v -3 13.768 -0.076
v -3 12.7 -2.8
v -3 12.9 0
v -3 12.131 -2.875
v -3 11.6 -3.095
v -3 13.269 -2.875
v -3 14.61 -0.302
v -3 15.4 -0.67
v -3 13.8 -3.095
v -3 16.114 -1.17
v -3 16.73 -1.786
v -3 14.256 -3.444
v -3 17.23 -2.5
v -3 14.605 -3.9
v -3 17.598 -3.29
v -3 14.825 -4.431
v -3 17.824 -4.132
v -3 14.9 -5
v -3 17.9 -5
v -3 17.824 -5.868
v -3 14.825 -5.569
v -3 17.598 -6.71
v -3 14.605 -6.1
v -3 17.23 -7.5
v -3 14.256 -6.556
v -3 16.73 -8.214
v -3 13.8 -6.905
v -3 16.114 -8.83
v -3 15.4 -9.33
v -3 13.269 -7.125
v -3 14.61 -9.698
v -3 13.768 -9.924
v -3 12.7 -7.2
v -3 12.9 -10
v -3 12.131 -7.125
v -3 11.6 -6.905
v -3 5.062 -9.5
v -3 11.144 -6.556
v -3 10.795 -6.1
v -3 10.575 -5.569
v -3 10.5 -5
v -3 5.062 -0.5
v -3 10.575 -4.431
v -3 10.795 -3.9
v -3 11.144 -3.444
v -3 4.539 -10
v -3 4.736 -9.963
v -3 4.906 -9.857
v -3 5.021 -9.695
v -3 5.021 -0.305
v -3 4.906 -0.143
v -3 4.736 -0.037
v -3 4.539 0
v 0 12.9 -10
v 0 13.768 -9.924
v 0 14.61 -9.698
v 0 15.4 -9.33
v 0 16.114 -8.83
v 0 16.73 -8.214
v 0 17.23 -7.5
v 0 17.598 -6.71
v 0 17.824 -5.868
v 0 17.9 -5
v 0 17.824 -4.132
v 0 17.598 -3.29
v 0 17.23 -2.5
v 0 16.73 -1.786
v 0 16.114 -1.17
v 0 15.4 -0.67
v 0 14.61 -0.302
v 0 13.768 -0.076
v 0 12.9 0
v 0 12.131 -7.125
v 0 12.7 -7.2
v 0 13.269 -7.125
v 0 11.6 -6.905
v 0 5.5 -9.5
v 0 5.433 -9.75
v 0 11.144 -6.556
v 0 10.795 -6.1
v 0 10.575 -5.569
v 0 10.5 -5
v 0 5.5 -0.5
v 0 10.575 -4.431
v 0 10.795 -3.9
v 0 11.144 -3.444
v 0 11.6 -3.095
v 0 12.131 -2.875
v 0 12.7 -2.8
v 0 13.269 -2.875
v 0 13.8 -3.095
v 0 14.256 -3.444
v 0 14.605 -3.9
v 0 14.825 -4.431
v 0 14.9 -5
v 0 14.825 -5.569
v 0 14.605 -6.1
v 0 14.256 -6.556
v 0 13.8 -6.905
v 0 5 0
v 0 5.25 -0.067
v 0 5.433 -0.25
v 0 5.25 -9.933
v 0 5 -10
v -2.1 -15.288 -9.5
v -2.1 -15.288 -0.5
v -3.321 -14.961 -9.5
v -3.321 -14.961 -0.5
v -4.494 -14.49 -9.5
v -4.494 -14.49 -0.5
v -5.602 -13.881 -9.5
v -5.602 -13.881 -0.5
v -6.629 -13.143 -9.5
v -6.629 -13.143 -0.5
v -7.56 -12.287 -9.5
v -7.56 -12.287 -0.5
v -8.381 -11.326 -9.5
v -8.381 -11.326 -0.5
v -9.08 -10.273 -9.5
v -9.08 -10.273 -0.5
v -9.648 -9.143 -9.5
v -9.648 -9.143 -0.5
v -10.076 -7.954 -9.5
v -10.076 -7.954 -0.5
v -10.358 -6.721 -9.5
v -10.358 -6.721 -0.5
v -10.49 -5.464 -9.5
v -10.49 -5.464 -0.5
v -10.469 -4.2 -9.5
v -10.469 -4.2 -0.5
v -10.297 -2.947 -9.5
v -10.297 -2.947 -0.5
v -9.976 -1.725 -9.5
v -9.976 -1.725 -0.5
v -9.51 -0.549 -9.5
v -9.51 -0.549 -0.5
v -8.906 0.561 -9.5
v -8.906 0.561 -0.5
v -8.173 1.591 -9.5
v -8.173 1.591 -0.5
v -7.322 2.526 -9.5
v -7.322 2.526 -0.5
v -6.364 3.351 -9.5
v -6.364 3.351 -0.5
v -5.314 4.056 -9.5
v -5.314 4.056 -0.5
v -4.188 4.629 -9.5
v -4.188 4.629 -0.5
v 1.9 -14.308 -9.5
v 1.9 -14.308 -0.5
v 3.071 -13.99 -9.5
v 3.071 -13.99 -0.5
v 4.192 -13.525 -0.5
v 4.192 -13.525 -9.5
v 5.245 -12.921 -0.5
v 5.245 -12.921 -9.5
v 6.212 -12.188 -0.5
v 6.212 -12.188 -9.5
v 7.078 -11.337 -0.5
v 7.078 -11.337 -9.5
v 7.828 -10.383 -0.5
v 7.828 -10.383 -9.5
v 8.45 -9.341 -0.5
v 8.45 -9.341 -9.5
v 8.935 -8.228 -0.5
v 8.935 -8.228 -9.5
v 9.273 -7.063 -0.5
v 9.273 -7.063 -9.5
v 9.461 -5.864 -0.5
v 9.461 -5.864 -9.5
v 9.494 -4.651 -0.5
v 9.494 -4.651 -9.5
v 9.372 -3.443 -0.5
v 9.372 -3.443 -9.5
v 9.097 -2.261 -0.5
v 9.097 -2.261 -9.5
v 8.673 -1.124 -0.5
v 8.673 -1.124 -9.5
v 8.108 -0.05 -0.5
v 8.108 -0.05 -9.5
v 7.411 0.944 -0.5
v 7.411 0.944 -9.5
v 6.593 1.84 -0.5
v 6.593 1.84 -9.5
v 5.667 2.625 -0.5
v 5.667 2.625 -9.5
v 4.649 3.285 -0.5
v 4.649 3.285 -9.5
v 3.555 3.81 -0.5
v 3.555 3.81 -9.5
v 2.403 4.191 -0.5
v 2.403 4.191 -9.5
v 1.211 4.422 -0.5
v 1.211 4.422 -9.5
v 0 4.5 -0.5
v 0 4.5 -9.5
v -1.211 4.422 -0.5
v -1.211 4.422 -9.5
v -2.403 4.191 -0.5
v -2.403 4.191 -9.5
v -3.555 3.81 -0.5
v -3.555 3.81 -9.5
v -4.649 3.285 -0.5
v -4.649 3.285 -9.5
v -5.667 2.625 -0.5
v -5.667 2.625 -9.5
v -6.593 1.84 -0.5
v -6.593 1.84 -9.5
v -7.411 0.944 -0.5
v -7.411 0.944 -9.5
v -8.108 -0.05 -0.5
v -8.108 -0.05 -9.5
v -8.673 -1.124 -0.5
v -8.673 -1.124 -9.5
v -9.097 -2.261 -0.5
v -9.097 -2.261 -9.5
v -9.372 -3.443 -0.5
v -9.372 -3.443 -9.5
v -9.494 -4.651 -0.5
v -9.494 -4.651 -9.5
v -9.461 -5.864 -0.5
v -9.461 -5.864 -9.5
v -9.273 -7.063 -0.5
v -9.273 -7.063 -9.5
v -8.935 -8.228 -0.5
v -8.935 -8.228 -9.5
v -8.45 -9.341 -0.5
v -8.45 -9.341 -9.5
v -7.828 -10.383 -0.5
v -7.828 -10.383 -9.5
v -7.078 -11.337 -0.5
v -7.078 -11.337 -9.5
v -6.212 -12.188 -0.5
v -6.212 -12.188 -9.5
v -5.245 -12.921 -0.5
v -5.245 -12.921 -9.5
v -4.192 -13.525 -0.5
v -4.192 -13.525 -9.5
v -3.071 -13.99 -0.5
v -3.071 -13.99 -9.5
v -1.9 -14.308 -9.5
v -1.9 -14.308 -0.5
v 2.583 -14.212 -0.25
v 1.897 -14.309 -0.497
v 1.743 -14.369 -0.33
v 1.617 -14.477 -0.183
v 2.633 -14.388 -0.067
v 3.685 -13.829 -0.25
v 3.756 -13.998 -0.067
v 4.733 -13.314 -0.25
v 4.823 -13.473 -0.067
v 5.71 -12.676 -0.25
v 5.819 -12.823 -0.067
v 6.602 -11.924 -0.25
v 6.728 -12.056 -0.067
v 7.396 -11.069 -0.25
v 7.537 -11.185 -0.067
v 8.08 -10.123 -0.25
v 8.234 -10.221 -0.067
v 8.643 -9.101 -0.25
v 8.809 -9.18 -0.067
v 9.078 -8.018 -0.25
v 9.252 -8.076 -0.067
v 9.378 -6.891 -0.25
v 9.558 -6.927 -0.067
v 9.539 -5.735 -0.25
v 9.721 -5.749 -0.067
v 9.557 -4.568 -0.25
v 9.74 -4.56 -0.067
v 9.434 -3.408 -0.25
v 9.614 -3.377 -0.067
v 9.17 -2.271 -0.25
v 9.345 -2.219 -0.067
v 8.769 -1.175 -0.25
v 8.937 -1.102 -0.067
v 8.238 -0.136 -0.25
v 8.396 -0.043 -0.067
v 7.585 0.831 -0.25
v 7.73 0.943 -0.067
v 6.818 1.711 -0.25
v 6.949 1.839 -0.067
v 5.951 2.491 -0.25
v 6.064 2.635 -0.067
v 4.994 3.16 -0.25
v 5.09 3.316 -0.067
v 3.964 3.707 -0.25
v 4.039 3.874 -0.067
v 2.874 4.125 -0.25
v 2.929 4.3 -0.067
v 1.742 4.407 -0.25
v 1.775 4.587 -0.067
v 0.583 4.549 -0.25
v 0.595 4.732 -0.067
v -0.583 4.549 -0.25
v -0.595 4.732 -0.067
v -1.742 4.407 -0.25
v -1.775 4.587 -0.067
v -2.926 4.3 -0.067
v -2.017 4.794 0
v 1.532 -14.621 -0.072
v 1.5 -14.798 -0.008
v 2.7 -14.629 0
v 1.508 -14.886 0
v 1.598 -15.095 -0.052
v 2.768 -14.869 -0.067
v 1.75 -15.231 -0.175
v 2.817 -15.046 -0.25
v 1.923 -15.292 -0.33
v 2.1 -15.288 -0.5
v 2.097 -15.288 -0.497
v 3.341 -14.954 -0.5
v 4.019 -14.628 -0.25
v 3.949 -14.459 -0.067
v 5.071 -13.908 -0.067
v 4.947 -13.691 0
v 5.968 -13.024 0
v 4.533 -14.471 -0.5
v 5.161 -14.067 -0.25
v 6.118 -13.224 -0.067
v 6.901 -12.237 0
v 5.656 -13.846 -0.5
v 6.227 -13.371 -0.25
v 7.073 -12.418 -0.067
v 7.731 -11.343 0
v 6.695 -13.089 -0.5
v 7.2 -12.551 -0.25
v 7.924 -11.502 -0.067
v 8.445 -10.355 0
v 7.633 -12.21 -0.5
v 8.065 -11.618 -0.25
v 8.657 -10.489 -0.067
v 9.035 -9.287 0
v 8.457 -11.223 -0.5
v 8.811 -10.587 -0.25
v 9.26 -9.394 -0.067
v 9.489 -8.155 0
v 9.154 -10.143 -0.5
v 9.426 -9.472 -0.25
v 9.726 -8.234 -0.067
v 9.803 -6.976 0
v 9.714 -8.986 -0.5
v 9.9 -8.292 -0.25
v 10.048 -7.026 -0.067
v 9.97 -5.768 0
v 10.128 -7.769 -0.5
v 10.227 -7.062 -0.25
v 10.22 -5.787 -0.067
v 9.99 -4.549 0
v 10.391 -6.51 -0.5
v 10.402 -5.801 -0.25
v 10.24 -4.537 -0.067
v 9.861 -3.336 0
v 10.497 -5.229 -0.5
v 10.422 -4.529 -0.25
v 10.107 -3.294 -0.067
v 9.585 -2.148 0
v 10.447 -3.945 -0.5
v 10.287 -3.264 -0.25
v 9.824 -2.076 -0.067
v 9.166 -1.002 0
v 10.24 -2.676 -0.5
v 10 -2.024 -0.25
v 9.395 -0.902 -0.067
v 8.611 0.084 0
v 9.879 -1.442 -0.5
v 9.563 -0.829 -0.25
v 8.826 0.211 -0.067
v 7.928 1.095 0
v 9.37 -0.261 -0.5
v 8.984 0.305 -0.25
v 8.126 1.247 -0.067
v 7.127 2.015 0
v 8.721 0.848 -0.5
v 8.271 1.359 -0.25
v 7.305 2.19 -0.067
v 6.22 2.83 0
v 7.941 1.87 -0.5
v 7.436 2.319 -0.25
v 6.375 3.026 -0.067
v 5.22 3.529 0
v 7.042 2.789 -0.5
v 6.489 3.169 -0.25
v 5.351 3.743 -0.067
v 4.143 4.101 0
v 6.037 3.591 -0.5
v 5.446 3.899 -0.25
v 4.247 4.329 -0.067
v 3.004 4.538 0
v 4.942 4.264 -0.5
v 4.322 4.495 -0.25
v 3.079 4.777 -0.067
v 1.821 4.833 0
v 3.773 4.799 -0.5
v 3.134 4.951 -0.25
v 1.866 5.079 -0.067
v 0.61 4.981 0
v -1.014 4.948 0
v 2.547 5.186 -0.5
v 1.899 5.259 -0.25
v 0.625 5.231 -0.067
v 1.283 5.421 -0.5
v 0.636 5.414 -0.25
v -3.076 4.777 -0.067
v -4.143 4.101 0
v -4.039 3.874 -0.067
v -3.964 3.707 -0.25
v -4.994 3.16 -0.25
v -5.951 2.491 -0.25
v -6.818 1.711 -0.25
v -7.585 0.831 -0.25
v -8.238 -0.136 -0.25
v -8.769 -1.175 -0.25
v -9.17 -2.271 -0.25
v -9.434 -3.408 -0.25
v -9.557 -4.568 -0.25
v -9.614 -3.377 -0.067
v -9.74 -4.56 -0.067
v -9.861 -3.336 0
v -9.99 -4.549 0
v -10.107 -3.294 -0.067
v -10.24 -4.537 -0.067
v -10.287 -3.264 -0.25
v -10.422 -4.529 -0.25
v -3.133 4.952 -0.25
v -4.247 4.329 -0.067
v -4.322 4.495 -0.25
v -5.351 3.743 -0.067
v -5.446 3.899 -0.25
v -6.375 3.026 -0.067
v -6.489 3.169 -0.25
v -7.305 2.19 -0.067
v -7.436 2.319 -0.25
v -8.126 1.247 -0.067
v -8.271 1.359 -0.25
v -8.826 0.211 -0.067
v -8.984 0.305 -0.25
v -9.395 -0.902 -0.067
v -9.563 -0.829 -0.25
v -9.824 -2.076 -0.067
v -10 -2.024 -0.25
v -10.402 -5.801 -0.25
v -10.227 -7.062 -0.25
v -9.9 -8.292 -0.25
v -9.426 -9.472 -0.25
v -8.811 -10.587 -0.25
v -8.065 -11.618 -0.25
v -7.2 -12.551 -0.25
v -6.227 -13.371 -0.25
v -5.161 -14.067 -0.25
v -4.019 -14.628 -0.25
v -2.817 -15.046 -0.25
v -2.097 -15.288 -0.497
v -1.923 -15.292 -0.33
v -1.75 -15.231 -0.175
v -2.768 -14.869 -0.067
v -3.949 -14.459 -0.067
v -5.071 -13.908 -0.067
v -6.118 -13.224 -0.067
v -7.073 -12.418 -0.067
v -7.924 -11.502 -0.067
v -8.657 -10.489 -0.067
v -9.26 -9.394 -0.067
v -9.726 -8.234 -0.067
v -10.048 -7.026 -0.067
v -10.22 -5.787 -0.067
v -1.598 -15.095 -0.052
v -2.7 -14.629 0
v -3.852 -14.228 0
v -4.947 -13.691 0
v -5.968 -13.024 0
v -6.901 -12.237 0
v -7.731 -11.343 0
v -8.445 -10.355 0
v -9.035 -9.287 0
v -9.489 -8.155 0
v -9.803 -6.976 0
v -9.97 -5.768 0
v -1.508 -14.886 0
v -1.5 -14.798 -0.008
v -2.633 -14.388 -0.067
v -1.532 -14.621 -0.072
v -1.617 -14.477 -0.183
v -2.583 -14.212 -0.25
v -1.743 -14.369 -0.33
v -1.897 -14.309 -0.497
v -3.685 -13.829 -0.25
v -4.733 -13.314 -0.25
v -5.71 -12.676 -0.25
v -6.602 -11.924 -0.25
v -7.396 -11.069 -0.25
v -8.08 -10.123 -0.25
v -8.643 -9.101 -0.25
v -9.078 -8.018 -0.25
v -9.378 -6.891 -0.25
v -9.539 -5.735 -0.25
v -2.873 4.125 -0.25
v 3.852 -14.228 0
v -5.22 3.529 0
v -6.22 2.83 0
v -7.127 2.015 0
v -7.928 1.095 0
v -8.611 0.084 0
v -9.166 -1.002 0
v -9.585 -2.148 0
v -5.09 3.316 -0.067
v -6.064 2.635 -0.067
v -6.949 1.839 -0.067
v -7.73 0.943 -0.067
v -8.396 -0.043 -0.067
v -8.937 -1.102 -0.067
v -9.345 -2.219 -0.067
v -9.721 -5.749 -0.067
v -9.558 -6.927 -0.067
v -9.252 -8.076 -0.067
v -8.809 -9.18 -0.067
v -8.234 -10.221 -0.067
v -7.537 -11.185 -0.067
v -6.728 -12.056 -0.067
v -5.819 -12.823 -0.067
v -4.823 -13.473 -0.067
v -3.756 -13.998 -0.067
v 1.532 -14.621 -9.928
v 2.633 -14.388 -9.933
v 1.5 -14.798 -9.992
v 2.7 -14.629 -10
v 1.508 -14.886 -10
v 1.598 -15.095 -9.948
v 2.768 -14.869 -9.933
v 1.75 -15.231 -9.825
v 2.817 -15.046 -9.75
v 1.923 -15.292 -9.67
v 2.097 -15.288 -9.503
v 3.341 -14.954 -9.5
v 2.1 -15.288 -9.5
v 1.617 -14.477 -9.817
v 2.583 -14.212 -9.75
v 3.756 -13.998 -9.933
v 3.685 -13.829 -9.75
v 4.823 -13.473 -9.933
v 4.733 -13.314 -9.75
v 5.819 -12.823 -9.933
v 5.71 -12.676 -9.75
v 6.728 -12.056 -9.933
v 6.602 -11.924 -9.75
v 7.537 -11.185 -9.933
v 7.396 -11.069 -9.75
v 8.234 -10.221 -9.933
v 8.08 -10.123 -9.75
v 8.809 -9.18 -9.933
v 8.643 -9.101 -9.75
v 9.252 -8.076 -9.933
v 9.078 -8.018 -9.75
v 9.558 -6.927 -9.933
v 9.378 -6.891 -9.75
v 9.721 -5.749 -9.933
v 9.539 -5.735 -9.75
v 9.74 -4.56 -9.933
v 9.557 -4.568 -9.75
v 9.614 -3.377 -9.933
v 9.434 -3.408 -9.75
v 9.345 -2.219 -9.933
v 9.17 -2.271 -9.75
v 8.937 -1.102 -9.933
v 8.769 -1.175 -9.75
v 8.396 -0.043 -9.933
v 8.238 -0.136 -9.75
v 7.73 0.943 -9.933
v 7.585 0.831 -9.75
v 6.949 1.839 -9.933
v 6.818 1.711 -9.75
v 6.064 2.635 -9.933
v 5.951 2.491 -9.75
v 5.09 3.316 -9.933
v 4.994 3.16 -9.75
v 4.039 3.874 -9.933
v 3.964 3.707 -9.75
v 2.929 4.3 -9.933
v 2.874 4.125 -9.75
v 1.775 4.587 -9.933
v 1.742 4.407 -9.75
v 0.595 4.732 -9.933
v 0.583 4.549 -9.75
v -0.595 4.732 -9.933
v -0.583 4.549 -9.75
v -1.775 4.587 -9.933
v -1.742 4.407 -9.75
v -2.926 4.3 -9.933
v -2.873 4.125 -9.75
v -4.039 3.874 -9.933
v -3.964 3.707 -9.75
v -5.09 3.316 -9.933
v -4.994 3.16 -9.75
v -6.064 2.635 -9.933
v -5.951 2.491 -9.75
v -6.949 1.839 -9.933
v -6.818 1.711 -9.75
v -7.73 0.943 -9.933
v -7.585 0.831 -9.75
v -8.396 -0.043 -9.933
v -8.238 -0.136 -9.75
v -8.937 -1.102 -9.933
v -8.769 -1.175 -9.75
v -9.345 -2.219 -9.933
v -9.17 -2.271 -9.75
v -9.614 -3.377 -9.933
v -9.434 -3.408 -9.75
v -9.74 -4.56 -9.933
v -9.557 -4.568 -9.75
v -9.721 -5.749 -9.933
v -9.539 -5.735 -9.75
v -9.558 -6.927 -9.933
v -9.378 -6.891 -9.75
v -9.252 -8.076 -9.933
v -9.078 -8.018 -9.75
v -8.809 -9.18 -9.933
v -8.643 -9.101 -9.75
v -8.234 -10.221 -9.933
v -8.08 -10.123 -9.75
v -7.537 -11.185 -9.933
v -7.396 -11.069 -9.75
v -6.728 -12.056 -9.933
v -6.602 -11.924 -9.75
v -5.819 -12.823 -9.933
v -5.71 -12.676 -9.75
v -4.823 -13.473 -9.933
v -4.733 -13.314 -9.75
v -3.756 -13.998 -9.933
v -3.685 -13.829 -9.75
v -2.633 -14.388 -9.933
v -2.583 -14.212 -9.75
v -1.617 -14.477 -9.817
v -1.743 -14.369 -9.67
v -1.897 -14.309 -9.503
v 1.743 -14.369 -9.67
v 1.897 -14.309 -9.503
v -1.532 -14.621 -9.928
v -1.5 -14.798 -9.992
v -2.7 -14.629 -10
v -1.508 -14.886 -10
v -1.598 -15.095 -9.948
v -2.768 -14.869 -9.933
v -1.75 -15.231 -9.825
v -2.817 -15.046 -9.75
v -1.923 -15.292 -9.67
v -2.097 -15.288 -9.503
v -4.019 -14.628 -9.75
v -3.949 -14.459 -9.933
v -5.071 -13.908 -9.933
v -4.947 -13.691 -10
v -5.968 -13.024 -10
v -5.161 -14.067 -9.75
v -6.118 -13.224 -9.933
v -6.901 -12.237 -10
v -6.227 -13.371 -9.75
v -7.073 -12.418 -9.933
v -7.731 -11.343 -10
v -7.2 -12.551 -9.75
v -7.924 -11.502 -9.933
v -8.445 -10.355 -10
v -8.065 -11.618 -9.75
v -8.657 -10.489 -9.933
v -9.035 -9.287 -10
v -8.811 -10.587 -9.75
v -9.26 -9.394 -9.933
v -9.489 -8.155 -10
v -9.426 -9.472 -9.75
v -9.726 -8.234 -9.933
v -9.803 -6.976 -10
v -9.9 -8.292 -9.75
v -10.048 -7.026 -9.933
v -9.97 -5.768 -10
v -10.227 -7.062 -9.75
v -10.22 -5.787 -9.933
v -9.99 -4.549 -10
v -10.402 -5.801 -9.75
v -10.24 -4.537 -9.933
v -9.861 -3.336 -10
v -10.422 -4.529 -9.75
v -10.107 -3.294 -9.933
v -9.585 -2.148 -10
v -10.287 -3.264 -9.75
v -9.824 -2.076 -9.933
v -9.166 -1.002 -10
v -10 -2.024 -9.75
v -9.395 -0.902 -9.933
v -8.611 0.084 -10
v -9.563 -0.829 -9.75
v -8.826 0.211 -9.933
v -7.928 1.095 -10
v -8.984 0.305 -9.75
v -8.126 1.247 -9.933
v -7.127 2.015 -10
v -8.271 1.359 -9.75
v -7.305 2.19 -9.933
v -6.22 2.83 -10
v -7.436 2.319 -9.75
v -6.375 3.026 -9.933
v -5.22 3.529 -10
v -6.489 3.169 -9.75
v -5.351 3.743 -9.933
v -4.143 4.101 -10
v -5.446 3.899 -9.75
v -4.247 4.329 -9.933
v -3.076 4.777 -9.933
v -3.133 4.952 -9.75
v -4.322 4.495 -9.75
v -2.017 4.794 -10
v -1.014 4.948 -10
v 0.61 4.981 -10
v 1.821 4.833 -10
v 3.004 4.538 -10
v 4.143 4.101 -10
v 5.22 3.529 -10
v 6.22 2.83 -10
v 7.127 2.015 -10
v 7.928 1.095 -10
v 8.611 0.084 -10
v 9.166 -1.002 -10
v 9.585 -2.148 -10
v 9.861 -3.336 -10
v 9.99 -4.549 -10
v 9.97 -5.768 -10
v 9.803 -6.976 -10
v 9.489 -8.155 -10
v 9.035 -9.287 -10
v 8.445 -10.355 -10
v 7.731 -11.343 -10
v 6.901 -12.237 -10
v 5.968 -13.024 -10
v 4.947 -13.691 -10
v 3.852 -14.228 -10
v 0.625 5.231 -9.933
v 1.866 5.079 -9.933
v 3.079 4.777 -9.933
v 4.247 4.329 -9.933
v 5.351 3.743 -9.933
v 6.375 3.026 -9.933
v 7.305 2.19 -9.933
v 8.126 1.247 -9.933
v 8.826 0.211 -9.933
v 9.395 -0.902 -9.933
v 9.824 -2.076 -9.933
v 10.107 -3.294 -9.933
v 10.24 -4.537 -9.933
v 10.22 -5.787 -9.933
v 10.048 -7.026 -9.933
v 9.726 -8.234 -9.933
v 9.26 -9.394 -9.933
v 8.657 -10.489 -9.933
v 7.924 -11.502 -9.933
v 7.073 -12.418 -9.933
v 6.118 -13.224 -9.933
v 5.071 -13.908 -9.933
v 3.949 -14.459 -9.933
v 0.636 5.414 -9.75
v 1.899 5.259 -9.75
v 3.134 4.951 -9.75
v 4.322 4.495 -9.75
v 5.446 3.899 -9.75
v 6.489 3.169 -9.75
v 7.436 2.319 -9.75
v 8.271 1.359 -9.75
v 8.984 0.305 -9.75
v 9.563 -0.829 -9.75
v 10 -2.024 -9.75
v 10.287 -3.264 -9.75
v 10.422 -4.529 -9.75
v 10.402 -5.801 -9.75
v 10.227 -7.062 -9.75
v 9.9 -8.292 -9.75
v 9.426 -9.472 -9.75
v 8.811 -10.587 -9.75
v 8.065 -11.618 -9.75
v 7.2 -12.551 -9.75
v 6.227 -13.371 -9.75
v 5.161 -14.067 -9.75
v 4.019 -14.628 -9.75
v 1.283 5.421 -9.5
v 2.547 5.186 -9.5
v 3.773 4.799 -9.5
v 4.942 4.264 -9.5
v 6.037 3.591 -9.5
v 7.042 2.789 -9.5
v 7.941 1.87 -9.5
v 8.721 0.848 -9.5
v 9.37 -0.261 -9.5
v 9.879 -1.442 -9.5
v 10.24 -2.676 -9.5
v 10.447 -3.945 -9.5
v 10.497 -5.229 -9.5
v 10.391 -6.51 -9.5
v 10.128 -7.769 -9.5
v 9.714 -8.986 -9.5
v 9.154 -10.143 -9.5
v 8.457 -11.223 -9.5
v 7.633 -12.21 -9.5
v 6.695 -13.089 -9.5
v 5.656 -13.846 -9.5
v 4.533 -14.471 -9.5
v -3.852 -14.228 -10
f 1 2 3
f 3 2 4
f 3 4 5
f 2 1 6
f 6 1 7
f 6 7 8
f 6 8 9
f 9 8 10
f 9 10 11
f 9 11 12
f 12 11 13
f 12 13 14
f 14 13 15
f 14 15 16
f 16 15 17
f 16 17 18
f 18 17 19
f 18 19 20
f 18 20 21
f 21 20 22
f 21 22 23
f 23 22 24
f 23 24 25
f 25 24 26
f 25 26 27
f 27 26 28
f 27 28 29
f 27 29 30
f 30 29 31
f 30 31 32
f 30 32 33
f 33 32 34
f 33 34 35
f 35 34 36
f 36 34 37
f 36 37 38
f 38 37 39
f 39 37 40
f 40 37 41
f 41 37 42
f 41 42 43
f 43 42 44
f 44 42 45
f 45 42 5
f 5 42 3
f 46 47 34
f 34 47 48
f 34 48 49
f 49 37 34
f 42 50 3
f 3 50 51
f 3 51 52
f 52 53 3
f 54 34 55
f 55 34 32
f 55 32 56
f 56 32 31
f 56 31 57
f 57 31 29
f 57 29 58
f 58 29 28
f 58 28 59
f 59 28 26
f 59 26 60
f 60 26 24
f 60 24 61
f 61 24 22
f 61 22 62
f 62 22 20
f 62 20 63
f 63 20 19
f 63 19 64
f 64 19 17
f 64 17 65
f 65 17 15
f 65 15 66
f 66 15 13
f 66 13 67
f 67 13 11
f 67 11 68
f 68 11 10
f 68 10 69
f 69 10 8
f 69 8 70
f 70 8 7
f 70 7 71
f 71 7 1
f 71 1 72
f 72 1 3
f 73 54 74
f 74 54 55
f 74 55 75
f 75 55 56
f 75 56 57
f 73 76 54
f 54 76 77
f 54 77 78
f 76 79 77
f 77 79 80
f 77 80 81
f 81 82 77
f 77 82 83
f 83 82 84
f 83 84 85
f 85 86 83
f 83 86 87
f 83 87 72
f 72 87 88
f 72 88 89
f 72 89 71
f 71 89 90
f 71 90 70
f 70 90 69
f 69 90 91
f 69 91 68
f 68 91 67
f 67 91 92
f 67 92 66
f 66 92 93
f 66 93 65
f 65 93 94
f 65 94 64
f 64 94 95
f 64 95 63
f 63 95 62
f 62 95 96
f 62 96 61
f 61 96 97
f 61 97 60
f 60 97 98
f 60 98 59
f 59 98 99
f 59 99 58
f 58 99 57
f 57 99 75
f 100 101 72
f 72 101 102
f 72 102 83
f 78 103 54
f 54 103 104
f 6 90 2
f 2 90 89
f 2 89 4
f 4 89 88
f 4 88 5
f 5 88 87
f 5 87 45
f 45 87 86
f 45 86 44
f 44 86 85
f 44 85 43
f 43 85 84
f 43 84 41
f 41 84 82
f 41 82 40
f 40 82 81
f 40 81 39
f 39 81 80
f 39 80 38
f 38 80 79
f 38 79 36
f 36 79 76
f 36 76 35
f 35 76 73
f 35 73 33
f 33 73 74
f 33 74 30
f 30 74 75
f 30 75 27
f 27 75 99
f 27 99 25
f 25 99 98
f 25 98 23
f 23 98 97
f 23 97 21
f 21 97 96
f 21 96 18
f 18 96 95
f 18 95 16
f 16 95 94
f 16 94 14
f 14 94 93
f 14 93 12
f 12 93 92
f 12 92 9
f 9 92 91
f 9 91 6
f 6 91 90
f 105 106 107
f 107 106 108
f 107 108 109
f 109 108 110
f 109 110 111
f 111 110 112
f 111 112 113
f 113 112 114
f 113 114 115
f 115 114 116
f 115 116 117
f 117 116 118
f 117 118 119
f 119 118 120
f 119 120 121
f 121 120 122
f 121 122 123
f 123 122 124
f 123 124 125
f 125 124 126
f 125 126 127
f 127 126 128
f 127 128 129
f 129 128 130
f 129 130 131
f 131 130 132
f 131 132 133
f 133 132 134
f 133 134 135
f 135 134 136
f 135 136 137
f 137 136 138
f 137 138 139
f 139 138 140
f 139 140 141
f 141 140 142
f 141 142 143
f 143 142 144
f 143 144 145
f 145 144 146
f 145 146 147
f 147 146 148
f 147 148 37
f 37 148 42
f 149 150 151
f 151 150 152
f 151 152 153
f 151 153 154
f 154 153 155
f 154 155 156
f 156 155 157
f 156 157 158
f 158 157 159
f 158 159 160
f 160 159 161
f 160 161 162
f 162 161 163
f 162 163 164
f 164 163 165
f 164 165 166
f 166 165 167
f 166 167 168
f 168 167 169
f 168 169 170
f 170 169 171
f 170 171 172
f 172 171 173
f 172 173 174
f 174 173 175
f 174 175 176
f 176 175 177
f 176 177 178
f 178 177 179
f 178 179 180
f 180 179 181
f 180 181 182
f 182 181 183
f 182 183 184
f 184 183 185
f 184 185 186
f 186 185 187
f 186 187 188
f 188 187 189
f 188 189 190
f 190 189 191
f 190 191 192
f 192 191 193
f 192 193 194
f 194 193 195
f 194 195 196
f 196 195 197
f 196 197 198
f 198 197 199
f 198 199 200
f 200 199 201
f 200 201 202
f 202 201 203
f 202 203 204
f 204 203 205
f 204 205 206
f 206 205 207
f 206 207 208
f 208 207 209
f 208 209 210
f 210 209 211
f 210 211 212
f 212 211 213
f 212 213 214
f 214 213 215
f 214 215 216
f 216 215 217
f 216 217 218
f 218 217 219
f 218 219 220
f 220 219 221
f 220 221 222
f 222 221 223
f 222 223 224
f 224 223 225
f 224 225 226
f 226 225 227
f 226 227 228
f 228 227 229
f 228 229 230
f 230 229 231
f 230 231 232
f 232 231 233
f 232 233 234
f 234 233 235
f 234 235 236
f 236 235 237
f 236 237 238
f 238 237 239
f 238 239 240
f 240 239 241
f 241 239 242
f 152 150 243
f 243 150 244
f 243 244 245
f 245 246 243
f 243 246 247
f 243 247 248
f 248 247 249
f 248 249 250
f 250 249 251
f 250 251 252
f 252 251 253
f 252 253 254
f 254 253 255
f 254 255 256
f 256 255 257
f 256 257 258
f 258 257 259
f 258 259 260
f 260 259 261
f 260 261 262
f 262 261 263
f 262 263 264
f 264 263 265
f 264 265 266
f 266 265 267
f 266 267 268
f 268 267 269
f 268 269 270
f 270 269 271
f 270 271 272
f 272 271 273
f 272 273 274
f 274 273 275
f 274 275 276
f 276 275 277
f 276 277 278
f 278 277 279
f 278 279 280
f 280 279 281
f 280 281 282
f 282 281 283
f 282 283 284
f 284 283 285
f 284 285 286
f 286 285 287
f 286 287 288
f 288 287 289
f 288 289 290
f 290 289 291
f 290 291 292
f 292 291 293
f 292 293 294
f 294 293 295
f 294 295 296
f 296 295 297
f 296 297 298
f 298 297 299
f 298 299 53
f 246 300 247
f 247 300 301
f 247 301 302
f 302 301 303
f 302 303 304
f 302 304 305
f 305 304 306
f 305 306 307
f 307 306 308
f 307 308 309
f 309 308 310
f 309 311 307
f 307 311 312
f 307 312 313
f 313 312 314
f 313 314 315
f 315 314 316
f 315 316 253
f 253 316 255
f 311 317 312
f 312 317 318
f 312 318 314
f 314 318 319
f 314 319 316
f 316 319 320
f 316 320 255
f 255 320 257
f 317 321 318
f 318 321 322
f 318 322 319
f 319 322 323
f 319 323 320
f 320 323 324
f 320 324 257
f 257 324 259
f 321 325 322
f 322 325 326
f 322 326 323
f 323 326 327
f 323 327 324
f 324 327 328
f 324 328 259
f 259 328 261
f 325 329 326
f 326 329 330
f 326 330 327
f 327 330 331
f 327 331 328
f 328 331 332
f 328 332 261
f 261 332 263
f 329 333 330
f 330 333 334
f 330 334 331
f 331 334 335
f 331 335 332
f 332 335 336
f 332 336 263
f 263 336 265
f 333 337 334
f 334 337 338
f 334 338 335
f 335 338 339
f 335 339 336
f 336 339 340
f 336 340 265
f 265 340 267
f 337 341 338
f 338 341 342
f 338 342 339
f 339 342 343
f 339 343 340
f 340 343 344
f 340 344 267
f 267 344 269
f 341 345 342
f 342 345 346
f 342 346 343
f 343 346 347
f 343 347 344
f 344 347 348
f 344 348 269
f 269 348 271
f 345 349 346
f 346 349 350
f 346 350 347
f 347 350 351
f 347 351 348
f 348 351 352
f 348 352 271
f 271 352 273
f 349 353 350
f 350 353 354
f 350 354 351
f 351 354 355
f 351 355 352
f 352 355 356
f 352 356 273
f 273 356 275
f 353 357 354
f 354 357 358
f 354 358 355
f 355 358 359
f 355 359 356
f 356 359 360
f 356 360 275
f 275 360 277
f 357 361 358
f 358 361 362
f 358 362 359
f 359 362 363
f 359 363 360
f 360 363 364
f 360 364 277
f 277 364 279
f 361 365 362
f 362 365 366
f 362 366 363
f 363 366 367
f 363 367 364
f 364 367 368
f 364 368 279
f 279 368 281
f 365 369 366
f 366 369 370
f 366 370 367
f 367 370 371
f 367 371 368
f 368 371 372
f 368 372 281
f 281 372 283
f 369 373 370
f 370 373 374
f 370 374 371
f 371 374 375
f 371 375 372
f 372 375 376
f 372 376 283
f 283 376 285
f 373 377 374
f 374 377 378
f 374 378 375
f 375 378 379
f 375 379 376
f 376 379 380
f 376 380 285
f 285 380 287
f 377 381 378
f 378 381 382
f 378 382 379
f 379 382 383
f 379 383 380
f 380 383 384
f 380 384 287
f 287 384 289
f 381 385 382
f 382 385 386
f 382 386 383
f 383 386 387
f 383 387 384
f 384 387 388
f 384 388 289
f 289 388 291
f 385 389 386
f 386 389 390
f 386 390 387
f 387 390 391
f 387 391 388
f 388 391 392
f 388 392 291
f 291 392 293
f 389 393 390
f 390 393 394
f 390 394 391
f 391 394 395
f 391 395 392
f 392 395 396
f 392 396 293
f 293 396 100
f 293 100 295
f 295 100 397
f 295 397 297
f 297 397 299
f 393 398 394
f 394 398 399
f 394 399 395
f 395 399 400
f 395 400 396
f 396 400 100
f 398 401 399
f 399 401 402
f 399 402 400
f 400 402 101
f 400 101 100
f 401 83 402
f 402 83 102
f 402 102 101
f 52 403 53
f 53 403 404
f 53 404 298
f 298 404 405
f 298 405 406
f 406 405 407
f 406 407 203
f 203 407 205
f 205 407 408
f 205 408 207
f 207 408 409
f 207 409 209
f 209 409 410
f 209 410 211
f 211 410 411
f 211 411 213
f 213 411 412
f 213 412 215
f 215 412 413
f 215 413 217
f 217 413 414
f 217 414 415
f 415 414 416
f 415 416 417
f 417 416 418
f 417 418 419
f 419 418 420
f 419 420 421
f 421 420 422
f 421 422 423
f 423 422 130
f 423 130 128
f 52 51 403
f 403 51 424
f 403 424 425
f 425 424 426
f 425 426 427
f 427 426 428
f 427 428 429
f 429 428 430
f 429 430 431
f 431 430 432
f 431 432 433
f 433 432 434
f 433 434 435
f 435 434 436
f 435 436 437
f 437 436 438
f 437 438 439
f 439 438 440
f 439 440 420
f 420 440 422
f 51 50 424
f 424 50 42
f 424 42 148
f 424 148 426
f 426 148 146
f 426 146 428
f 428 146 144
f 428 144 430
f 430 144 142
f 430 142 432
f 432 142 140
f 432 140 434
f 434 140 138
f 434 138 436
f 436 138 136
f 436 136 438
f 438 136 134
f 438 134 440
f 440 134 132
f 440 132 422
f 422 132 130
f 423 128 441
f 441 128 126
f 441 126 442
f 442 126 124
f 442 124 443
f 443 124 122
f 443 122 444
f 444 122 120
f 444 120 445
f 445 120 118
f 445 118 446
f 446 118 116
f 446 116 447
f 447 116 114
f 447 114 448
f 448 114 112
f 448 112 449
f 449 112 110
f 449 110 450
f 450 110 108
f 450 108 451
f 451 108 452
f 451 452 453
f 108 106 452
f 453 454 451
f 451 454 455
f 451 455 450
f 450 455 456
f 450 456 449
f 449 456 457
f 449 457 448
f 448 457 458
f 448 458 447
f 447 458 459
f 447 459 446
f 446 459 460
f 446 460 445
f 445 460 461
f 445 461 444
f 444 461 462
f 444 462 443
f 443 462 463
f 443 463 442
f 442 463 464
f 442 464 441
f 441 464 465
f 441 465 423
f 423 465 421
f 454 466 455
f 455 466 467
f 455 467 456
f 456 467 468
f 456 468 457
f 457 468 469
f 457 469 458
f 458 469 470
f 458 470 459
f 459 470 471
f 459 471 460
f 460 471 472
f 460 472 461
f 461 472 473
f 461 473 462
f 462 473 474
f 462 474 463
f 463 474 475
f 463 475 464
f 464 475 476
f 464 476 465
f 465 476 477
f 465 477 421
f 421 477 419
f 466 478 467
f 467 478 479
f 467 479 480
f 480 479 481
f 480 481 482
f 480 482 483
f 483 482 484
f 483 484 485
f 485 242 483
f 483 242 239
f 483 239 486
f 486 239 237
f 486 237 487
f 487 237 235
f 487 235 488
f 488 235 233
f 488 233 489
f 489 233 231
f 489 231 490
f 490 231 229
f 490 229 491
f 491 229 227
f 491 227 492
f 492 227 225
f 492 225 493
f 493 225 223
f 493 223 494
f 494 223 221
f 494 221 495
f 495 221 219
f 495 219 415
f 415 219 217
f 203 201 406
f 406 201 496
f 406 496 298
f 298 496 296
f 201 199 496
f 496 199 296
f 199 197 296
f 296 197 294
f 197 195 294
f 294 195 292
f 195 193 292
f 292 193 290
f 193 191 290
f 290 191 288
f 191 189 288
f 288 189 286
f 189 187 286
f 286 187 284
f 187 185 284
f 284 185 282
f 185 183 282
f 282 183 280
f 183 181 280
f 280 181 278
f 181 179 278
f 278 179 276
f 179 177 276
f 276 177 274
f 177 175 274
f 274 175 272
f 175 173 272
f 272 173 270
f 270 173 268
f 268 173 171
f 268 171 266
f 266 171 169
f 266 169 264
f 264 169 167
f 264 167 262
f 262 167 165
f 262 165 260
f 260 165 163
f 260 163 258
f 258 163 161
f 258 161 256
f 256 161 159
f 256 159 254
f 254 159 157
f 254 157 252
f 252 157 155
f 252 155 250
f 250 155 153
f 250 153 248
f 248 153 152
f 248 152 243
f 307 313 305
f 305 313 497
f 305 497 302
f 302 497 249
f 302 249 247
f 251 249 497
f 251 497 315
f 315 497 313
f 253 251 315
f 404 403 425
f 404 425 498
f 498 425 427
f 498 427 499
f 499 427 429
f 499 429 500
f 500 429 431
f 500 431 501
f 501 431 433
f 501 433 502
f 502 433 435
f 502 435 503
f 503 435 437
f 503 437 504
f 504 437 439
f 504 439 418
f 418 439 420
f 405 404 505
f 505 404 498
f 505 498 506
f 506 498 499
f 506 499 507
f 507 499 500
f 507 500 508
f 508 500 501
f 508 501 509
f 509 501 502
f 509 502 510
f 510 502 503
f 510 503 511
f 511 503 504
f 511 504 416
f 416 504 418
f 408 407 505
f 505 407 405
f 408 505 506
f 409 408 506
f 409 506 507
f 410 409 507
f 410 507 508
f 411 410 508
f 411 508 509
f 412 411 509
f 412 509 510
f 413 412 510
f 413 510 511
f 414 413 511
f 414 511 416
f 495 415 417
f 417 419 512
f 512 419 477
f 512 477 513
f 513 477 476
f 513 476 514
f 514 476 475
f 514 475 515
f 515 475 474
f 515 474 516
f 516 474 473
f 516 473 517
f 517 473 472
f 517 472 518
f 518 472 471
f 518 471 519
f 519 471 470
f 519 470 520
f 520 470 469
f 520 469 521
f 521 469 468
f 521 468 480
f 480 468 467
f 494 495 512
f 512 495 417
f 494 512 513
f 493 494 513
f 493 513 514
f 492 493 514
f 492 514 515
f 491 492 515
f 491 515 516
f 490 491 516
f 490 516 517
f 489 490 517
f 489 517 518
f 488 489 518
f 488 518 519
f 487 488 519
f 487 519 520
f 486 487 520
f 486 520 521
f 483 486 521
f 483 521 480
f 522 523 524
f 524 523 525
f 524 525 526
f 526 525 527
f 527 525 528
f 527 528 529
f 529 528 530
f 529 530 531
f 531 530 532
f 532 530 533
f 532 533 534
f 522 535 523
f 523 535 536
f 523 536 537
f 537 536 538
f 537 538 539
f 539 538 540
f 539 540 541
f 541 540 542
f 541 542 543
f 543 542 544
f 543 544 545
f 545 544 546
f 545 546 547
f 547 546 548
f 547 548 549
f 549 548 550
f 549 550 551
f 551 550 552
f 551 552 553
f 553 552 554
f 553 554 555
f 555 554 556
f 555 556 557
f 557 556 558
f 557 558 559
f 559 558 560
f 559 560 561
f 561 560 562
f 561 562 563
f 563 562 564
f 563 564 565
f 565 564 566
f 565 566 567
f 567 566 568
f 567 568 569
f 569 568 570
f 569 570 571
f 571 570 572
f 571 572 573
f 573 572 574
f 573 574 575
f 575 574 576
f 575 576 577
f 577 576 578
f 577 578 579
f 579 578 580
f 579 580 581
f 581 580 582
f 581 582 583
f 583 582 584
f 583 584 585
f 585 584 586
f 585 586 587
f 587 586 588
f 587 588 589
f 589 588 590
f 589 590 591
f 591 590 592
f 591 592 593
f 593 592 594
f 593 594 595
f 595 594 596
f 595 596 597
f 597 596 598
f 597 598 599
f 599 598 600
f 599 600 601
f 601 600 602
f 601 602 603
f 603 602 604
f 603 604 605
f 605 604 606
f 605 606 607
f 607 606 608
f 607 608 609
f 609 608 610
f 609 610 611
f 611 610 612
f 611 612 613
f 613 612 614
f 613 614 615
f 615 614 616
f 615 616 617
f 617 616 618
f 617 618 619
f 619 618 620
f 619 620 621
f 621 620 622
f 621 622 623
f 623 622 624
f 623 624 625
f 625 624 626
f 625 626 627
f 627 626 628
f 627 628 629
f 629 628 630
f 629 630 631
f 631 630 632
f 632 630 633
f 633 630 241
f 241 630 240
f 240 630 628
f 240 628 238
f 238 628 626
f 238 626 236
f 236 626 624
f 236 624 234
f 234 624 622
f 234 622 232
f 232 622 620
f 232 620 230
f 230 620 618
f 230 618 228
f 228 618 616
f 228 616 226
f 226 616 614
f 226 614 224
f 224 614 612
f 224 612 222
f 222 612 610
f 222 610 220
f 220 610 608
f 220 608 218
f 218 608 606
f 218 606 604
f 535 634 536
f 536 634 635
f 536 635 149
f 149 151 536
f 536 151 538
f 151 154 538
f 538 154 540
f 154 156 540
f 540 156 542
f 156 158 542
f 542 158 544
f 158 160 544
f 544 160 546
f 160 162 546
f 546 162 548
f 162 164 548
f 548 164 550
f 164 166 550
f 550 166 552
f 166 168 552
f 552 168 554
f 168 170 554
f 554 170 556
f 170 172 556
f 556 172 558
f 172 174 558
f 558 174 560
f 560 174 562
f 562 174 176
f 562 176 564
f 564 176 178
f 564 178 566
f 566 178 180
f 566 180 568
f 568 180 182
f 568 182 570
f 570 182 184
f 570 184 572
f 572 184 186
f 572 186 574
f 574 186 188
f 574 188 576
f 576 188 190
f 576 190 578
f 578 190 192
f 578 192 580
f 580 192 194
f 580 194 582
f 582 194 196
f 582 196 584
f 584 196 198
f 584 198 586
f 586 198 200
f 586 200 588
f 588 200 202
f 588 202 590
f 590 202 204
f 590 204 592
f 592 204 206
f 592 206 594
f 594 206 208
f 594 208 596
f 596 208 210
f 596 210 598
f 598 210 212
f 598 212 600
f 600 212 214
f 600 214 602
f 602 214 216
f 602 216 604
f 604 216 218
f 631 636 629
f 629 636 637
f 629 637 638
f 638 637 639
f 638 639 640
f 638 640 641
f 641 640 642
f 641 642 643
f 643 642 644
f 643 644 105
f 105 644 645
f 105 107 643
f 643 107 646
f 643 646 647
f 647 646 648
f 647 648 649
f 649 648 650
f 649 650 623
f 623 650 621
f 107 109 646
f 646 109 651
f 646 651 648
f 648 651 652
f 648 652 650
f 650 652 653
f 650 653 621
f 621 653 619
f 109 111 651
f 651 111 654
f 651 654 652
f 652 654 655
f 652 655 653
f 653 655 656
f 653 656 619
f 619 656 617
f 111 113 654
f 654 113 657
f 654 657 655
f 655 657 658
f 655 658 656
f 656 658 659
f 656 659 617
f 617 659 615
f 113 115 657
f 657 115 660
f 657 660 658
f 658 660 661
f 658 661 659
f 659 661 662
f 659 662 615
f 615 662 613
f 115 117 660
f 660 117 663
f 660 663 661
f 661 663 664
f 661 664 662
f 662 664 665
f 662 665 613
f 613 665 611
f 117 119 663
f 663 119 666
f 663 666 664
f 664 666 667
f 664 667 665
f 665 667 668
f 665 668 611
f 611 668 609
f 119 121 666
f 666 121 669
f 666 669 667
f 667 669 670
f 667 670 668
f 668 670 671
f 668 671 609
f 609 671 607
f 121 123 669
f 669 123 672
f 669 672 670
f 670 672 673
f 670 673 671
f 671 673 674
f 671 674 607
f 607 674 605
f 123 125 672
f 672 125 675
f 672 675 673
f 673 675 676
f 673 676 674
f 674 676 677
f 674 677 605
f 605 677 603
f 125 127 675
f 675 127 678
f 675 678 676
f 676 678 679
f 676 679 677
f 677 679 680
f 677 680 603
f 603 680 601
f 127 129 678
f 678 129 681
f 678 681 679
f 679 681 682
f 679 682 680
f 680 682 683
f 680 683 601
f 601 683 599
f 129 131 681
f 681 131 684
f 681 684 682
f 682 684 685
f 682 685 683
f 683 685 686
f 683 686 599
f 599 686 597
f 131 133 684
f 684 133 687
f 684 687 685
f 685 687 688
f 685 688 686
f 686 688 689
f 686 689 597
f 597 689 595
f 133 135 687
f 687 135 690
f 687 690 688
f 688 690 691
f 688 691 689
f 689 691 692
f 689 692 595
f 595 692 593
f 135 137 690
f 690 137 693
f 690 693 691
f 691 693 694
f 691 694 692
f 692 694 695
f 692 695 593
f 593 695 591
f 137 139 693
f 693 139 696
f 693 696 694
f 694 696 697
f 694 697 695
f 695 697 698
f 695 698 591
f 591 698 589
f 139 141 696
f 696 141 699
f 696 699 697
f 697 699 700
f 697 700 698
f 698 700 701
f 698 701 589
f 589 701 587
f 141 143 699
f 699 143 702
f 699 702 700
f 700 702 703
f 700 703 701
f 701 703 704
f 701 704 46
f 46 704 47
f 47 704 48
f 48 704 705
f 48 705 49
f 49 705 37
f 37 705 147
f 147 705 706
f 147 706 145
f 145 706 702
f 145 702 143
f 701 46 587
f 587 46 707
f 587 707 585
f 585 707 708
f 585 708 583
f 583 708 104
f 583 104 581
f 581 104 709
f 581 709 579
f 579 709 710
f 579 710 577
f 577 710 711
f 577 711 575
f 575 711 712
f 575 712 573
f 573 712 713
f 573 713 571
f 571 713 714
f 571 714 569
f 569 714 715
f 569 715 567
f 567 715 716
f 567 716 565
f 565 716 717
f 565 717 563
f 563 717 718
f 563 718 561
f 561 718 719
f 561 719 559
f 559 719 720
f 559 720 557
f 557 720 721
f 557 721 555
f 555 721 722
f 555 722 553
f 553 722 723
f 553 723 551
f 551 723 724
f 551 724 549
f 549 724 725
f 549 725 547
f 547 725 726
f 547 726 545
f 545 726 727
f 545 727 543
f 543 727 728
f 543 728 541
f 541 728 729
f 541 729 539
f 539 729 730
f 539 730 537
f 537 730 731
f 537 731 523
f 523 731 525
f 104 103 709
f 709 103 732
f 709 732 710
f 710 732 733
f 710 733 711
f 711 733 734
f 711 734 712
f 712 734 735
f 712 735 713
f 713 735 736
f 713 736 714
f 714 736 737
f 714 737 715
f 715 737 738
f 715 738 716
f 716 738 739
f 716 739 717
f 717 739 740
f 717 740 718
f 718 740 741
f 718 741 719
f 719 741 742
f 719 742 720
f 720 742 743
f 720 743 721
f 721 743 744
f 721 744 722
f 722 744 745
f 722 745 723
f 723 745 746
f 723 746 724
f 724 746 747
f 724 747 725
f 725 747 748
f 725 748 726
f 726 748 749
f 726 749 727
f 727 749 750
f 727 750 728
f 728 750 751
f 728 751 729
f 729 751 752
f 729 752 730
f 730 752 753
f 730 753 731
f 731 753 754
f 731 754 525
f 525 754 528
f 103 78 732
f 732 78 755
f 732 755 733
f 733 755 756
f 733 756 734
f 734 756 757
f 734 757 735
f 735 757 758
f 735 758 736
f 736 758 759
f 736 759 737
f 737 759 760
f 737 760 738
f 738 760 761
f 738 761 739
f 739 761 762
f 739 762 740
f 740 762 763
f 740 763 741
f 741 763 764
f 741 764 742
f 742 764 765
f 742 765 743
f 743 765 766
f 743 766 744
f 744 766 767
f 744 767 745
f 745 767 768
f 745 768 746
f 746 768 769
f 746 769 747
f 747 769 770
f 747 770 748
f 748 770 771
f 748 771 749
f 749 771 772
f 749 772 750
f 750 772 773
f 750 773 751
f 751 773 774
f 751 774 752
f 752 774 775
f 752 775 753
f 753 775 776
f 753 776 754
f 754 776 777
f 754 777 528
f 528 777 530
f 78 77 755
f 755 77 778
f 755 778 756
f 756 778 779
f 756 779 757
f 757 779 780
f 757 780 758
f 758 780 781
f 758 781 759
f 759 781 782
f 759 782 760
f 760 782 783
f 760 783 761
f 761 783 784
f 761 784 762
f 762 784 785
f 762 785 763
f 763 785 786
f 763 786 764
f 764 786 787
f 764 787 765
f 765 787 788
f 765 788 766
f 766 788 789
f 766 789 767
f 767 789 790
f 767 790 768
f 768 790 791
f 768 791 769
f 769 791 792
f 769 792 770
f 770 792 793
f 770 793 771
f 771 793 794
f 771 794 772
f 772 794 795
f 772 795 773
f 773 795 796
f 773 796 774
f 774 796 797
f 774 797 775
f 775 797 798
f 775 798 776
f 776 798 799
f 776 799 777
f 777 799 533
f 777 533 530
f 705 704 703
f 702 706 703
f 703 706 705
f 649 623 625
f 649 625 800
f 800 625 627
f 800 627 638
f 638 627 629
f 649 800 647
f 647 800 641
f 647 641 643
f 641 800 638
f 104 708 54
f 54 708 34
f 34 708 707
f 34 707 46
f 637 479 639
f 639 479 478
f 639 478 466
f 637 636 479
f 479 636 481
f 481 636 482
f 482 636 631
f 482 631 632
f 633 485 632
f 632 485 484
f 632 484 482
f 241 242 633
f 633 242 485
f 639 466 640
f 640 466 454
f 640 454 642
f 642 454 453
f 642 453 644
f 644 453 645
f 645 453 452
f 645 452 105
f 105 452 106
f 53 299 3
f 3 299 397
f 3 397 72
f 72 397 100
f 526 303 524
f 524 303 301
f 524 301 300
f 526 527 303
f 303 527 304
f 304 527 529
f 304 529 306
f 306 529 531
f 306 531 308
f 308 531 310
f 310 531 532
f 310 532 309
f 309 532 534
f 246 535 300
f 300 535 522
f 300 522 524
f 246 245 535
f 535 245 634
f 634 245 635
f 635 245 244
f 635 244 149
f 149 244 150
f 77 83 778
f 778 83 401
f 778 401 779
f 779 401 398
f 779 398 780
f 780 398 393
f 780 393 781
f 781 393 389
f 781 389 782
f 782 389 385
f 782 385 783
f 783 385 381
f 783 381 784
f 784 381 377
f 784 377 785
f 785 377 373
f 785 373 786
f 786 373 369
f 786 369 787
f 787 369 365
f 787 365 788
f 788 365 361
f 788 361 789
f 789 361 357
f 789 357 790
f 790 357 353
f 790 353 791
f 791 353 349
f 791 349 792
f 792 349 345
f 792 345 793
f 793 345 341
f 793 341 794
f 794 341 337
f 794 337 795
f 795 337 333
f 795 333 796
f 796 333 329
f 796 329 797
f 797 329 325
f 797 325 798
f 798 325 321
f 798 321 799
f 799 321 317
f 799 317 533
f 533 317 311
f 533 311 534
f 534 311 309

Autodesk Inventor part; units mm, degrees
ref_plane "YZ Plane" through (0, 0, 0) normal (1, 0, 0) x (0, 1, 0)
ref_plane "XZ Plane" through (0, 0, 0) normal (0, 1, 0) x (-1, 0, 0)
ref_plane "XY Plane" through (0, 0, 0) normal (0, 0, 1) x (1, 0, 0)
sketch "Boceto1" plane through (0, 0, 0) normal (0, 0, 1) x (1, 0, 0)
  circle A0 centre (0, -5) radius 10.5
  circle A1 centre (0, -5) radius 9.5
  line L0 (0, 5.5) -> (0, 20.5)
  line L1 (0, 20.5) -> (-3, 20.5)
  line L2 (-3, 20.5) -> (-3, 5.0623)
  line L3 (0, -14.5) -> (1.5, -14.5)
  line L4 (1.5, -14.5) -> (-1.5, -14.5)
  line L5 (-1.5, -14.5) -> (-1.5, -14.3808)
  line L6 (-1.5, -15.5846) -> (-1.5, -14.5)
  line L7 (-1.5, -15.5846) -> (1.5, -15.5846)
  line L8 (1.5, -15.5846) -> (1.5, -14.3808)
  point P0 (0, 0)
  point P1 (-1.5, -15.3923)
  point P2 (1.5, -15.3923)
  dimension "d1" = 19
  dimension "d8" = 21
  dimension "d9" = 15
  dimension "d10" = 3
  dimension "d13" = 1.5
  dimension "d14" = 3
extrude "Extrusión1" add sketch "Boceto1" against normal blind 10 contours A0 L8 A1 L5 L6 | A0 L2 L1 L0
sketch "Boceto2" plane through (0, 5.5, 0) normal (1, 0, 0) x (0, 0, -1)
  line L0 (0, 15) -> (10, 15) projected
  line L1 (0, 0) -> (10, 0)
  line L2 (10, 0) -> (10, 15)
  line L3 (10, 15) -> (0, 15)
  line L4 (0, 15) -> (0, 0)
  line L5 (5, 0) -> (5, 5)
  line L6 (5, 5) -> (5, 15)
  line L7 (5, 5) -> (5, 9.4)
  line L8 (5, 9.4) -> (5, 7.2)
  circle A0 centre (5, 7.2) radius 2.2
  line L9 (5, 9.4) -> (5, 12.4)
  line L10 (5, 12.4) -> (10, 12.4)
  line L11 (0, 12.4) -> (5, 12.4)
  point P0 (0, -5.5)
  dimension "d16" = 15
  dimension "d17" = 10
  dimension "d18" = 5
  dimension "d19" = 4.4
  dimension "d22" = 3
extrude "Extrusión2" cut sketch "Boceto2" against normal blind 10 contours L0 L6 L11 L4 | L0 L2 L10 L6 | A0 L6 | L6 A0
fillet "Empalme1" radius 5 2 edges at (-1.5, 17.9, 0) (-1.5, 17.9, -10)
fillet "Empalme2" radius 0.5 10 edges at (10.473, -4.2481, 0) (-10.4719, -5.7679, 0) (0, 4.5, 0) (10.473, -4.2481, -10) (-10.4719, -5.7679, -10) (0, 4.5, -10) (-1.5, -14.3808, -5) (1.5, -14.3808, -5) (-1.5, -15.3923, -5) (1.5, -15.3923, -5)
properties part number "Anillo_Dedos"
